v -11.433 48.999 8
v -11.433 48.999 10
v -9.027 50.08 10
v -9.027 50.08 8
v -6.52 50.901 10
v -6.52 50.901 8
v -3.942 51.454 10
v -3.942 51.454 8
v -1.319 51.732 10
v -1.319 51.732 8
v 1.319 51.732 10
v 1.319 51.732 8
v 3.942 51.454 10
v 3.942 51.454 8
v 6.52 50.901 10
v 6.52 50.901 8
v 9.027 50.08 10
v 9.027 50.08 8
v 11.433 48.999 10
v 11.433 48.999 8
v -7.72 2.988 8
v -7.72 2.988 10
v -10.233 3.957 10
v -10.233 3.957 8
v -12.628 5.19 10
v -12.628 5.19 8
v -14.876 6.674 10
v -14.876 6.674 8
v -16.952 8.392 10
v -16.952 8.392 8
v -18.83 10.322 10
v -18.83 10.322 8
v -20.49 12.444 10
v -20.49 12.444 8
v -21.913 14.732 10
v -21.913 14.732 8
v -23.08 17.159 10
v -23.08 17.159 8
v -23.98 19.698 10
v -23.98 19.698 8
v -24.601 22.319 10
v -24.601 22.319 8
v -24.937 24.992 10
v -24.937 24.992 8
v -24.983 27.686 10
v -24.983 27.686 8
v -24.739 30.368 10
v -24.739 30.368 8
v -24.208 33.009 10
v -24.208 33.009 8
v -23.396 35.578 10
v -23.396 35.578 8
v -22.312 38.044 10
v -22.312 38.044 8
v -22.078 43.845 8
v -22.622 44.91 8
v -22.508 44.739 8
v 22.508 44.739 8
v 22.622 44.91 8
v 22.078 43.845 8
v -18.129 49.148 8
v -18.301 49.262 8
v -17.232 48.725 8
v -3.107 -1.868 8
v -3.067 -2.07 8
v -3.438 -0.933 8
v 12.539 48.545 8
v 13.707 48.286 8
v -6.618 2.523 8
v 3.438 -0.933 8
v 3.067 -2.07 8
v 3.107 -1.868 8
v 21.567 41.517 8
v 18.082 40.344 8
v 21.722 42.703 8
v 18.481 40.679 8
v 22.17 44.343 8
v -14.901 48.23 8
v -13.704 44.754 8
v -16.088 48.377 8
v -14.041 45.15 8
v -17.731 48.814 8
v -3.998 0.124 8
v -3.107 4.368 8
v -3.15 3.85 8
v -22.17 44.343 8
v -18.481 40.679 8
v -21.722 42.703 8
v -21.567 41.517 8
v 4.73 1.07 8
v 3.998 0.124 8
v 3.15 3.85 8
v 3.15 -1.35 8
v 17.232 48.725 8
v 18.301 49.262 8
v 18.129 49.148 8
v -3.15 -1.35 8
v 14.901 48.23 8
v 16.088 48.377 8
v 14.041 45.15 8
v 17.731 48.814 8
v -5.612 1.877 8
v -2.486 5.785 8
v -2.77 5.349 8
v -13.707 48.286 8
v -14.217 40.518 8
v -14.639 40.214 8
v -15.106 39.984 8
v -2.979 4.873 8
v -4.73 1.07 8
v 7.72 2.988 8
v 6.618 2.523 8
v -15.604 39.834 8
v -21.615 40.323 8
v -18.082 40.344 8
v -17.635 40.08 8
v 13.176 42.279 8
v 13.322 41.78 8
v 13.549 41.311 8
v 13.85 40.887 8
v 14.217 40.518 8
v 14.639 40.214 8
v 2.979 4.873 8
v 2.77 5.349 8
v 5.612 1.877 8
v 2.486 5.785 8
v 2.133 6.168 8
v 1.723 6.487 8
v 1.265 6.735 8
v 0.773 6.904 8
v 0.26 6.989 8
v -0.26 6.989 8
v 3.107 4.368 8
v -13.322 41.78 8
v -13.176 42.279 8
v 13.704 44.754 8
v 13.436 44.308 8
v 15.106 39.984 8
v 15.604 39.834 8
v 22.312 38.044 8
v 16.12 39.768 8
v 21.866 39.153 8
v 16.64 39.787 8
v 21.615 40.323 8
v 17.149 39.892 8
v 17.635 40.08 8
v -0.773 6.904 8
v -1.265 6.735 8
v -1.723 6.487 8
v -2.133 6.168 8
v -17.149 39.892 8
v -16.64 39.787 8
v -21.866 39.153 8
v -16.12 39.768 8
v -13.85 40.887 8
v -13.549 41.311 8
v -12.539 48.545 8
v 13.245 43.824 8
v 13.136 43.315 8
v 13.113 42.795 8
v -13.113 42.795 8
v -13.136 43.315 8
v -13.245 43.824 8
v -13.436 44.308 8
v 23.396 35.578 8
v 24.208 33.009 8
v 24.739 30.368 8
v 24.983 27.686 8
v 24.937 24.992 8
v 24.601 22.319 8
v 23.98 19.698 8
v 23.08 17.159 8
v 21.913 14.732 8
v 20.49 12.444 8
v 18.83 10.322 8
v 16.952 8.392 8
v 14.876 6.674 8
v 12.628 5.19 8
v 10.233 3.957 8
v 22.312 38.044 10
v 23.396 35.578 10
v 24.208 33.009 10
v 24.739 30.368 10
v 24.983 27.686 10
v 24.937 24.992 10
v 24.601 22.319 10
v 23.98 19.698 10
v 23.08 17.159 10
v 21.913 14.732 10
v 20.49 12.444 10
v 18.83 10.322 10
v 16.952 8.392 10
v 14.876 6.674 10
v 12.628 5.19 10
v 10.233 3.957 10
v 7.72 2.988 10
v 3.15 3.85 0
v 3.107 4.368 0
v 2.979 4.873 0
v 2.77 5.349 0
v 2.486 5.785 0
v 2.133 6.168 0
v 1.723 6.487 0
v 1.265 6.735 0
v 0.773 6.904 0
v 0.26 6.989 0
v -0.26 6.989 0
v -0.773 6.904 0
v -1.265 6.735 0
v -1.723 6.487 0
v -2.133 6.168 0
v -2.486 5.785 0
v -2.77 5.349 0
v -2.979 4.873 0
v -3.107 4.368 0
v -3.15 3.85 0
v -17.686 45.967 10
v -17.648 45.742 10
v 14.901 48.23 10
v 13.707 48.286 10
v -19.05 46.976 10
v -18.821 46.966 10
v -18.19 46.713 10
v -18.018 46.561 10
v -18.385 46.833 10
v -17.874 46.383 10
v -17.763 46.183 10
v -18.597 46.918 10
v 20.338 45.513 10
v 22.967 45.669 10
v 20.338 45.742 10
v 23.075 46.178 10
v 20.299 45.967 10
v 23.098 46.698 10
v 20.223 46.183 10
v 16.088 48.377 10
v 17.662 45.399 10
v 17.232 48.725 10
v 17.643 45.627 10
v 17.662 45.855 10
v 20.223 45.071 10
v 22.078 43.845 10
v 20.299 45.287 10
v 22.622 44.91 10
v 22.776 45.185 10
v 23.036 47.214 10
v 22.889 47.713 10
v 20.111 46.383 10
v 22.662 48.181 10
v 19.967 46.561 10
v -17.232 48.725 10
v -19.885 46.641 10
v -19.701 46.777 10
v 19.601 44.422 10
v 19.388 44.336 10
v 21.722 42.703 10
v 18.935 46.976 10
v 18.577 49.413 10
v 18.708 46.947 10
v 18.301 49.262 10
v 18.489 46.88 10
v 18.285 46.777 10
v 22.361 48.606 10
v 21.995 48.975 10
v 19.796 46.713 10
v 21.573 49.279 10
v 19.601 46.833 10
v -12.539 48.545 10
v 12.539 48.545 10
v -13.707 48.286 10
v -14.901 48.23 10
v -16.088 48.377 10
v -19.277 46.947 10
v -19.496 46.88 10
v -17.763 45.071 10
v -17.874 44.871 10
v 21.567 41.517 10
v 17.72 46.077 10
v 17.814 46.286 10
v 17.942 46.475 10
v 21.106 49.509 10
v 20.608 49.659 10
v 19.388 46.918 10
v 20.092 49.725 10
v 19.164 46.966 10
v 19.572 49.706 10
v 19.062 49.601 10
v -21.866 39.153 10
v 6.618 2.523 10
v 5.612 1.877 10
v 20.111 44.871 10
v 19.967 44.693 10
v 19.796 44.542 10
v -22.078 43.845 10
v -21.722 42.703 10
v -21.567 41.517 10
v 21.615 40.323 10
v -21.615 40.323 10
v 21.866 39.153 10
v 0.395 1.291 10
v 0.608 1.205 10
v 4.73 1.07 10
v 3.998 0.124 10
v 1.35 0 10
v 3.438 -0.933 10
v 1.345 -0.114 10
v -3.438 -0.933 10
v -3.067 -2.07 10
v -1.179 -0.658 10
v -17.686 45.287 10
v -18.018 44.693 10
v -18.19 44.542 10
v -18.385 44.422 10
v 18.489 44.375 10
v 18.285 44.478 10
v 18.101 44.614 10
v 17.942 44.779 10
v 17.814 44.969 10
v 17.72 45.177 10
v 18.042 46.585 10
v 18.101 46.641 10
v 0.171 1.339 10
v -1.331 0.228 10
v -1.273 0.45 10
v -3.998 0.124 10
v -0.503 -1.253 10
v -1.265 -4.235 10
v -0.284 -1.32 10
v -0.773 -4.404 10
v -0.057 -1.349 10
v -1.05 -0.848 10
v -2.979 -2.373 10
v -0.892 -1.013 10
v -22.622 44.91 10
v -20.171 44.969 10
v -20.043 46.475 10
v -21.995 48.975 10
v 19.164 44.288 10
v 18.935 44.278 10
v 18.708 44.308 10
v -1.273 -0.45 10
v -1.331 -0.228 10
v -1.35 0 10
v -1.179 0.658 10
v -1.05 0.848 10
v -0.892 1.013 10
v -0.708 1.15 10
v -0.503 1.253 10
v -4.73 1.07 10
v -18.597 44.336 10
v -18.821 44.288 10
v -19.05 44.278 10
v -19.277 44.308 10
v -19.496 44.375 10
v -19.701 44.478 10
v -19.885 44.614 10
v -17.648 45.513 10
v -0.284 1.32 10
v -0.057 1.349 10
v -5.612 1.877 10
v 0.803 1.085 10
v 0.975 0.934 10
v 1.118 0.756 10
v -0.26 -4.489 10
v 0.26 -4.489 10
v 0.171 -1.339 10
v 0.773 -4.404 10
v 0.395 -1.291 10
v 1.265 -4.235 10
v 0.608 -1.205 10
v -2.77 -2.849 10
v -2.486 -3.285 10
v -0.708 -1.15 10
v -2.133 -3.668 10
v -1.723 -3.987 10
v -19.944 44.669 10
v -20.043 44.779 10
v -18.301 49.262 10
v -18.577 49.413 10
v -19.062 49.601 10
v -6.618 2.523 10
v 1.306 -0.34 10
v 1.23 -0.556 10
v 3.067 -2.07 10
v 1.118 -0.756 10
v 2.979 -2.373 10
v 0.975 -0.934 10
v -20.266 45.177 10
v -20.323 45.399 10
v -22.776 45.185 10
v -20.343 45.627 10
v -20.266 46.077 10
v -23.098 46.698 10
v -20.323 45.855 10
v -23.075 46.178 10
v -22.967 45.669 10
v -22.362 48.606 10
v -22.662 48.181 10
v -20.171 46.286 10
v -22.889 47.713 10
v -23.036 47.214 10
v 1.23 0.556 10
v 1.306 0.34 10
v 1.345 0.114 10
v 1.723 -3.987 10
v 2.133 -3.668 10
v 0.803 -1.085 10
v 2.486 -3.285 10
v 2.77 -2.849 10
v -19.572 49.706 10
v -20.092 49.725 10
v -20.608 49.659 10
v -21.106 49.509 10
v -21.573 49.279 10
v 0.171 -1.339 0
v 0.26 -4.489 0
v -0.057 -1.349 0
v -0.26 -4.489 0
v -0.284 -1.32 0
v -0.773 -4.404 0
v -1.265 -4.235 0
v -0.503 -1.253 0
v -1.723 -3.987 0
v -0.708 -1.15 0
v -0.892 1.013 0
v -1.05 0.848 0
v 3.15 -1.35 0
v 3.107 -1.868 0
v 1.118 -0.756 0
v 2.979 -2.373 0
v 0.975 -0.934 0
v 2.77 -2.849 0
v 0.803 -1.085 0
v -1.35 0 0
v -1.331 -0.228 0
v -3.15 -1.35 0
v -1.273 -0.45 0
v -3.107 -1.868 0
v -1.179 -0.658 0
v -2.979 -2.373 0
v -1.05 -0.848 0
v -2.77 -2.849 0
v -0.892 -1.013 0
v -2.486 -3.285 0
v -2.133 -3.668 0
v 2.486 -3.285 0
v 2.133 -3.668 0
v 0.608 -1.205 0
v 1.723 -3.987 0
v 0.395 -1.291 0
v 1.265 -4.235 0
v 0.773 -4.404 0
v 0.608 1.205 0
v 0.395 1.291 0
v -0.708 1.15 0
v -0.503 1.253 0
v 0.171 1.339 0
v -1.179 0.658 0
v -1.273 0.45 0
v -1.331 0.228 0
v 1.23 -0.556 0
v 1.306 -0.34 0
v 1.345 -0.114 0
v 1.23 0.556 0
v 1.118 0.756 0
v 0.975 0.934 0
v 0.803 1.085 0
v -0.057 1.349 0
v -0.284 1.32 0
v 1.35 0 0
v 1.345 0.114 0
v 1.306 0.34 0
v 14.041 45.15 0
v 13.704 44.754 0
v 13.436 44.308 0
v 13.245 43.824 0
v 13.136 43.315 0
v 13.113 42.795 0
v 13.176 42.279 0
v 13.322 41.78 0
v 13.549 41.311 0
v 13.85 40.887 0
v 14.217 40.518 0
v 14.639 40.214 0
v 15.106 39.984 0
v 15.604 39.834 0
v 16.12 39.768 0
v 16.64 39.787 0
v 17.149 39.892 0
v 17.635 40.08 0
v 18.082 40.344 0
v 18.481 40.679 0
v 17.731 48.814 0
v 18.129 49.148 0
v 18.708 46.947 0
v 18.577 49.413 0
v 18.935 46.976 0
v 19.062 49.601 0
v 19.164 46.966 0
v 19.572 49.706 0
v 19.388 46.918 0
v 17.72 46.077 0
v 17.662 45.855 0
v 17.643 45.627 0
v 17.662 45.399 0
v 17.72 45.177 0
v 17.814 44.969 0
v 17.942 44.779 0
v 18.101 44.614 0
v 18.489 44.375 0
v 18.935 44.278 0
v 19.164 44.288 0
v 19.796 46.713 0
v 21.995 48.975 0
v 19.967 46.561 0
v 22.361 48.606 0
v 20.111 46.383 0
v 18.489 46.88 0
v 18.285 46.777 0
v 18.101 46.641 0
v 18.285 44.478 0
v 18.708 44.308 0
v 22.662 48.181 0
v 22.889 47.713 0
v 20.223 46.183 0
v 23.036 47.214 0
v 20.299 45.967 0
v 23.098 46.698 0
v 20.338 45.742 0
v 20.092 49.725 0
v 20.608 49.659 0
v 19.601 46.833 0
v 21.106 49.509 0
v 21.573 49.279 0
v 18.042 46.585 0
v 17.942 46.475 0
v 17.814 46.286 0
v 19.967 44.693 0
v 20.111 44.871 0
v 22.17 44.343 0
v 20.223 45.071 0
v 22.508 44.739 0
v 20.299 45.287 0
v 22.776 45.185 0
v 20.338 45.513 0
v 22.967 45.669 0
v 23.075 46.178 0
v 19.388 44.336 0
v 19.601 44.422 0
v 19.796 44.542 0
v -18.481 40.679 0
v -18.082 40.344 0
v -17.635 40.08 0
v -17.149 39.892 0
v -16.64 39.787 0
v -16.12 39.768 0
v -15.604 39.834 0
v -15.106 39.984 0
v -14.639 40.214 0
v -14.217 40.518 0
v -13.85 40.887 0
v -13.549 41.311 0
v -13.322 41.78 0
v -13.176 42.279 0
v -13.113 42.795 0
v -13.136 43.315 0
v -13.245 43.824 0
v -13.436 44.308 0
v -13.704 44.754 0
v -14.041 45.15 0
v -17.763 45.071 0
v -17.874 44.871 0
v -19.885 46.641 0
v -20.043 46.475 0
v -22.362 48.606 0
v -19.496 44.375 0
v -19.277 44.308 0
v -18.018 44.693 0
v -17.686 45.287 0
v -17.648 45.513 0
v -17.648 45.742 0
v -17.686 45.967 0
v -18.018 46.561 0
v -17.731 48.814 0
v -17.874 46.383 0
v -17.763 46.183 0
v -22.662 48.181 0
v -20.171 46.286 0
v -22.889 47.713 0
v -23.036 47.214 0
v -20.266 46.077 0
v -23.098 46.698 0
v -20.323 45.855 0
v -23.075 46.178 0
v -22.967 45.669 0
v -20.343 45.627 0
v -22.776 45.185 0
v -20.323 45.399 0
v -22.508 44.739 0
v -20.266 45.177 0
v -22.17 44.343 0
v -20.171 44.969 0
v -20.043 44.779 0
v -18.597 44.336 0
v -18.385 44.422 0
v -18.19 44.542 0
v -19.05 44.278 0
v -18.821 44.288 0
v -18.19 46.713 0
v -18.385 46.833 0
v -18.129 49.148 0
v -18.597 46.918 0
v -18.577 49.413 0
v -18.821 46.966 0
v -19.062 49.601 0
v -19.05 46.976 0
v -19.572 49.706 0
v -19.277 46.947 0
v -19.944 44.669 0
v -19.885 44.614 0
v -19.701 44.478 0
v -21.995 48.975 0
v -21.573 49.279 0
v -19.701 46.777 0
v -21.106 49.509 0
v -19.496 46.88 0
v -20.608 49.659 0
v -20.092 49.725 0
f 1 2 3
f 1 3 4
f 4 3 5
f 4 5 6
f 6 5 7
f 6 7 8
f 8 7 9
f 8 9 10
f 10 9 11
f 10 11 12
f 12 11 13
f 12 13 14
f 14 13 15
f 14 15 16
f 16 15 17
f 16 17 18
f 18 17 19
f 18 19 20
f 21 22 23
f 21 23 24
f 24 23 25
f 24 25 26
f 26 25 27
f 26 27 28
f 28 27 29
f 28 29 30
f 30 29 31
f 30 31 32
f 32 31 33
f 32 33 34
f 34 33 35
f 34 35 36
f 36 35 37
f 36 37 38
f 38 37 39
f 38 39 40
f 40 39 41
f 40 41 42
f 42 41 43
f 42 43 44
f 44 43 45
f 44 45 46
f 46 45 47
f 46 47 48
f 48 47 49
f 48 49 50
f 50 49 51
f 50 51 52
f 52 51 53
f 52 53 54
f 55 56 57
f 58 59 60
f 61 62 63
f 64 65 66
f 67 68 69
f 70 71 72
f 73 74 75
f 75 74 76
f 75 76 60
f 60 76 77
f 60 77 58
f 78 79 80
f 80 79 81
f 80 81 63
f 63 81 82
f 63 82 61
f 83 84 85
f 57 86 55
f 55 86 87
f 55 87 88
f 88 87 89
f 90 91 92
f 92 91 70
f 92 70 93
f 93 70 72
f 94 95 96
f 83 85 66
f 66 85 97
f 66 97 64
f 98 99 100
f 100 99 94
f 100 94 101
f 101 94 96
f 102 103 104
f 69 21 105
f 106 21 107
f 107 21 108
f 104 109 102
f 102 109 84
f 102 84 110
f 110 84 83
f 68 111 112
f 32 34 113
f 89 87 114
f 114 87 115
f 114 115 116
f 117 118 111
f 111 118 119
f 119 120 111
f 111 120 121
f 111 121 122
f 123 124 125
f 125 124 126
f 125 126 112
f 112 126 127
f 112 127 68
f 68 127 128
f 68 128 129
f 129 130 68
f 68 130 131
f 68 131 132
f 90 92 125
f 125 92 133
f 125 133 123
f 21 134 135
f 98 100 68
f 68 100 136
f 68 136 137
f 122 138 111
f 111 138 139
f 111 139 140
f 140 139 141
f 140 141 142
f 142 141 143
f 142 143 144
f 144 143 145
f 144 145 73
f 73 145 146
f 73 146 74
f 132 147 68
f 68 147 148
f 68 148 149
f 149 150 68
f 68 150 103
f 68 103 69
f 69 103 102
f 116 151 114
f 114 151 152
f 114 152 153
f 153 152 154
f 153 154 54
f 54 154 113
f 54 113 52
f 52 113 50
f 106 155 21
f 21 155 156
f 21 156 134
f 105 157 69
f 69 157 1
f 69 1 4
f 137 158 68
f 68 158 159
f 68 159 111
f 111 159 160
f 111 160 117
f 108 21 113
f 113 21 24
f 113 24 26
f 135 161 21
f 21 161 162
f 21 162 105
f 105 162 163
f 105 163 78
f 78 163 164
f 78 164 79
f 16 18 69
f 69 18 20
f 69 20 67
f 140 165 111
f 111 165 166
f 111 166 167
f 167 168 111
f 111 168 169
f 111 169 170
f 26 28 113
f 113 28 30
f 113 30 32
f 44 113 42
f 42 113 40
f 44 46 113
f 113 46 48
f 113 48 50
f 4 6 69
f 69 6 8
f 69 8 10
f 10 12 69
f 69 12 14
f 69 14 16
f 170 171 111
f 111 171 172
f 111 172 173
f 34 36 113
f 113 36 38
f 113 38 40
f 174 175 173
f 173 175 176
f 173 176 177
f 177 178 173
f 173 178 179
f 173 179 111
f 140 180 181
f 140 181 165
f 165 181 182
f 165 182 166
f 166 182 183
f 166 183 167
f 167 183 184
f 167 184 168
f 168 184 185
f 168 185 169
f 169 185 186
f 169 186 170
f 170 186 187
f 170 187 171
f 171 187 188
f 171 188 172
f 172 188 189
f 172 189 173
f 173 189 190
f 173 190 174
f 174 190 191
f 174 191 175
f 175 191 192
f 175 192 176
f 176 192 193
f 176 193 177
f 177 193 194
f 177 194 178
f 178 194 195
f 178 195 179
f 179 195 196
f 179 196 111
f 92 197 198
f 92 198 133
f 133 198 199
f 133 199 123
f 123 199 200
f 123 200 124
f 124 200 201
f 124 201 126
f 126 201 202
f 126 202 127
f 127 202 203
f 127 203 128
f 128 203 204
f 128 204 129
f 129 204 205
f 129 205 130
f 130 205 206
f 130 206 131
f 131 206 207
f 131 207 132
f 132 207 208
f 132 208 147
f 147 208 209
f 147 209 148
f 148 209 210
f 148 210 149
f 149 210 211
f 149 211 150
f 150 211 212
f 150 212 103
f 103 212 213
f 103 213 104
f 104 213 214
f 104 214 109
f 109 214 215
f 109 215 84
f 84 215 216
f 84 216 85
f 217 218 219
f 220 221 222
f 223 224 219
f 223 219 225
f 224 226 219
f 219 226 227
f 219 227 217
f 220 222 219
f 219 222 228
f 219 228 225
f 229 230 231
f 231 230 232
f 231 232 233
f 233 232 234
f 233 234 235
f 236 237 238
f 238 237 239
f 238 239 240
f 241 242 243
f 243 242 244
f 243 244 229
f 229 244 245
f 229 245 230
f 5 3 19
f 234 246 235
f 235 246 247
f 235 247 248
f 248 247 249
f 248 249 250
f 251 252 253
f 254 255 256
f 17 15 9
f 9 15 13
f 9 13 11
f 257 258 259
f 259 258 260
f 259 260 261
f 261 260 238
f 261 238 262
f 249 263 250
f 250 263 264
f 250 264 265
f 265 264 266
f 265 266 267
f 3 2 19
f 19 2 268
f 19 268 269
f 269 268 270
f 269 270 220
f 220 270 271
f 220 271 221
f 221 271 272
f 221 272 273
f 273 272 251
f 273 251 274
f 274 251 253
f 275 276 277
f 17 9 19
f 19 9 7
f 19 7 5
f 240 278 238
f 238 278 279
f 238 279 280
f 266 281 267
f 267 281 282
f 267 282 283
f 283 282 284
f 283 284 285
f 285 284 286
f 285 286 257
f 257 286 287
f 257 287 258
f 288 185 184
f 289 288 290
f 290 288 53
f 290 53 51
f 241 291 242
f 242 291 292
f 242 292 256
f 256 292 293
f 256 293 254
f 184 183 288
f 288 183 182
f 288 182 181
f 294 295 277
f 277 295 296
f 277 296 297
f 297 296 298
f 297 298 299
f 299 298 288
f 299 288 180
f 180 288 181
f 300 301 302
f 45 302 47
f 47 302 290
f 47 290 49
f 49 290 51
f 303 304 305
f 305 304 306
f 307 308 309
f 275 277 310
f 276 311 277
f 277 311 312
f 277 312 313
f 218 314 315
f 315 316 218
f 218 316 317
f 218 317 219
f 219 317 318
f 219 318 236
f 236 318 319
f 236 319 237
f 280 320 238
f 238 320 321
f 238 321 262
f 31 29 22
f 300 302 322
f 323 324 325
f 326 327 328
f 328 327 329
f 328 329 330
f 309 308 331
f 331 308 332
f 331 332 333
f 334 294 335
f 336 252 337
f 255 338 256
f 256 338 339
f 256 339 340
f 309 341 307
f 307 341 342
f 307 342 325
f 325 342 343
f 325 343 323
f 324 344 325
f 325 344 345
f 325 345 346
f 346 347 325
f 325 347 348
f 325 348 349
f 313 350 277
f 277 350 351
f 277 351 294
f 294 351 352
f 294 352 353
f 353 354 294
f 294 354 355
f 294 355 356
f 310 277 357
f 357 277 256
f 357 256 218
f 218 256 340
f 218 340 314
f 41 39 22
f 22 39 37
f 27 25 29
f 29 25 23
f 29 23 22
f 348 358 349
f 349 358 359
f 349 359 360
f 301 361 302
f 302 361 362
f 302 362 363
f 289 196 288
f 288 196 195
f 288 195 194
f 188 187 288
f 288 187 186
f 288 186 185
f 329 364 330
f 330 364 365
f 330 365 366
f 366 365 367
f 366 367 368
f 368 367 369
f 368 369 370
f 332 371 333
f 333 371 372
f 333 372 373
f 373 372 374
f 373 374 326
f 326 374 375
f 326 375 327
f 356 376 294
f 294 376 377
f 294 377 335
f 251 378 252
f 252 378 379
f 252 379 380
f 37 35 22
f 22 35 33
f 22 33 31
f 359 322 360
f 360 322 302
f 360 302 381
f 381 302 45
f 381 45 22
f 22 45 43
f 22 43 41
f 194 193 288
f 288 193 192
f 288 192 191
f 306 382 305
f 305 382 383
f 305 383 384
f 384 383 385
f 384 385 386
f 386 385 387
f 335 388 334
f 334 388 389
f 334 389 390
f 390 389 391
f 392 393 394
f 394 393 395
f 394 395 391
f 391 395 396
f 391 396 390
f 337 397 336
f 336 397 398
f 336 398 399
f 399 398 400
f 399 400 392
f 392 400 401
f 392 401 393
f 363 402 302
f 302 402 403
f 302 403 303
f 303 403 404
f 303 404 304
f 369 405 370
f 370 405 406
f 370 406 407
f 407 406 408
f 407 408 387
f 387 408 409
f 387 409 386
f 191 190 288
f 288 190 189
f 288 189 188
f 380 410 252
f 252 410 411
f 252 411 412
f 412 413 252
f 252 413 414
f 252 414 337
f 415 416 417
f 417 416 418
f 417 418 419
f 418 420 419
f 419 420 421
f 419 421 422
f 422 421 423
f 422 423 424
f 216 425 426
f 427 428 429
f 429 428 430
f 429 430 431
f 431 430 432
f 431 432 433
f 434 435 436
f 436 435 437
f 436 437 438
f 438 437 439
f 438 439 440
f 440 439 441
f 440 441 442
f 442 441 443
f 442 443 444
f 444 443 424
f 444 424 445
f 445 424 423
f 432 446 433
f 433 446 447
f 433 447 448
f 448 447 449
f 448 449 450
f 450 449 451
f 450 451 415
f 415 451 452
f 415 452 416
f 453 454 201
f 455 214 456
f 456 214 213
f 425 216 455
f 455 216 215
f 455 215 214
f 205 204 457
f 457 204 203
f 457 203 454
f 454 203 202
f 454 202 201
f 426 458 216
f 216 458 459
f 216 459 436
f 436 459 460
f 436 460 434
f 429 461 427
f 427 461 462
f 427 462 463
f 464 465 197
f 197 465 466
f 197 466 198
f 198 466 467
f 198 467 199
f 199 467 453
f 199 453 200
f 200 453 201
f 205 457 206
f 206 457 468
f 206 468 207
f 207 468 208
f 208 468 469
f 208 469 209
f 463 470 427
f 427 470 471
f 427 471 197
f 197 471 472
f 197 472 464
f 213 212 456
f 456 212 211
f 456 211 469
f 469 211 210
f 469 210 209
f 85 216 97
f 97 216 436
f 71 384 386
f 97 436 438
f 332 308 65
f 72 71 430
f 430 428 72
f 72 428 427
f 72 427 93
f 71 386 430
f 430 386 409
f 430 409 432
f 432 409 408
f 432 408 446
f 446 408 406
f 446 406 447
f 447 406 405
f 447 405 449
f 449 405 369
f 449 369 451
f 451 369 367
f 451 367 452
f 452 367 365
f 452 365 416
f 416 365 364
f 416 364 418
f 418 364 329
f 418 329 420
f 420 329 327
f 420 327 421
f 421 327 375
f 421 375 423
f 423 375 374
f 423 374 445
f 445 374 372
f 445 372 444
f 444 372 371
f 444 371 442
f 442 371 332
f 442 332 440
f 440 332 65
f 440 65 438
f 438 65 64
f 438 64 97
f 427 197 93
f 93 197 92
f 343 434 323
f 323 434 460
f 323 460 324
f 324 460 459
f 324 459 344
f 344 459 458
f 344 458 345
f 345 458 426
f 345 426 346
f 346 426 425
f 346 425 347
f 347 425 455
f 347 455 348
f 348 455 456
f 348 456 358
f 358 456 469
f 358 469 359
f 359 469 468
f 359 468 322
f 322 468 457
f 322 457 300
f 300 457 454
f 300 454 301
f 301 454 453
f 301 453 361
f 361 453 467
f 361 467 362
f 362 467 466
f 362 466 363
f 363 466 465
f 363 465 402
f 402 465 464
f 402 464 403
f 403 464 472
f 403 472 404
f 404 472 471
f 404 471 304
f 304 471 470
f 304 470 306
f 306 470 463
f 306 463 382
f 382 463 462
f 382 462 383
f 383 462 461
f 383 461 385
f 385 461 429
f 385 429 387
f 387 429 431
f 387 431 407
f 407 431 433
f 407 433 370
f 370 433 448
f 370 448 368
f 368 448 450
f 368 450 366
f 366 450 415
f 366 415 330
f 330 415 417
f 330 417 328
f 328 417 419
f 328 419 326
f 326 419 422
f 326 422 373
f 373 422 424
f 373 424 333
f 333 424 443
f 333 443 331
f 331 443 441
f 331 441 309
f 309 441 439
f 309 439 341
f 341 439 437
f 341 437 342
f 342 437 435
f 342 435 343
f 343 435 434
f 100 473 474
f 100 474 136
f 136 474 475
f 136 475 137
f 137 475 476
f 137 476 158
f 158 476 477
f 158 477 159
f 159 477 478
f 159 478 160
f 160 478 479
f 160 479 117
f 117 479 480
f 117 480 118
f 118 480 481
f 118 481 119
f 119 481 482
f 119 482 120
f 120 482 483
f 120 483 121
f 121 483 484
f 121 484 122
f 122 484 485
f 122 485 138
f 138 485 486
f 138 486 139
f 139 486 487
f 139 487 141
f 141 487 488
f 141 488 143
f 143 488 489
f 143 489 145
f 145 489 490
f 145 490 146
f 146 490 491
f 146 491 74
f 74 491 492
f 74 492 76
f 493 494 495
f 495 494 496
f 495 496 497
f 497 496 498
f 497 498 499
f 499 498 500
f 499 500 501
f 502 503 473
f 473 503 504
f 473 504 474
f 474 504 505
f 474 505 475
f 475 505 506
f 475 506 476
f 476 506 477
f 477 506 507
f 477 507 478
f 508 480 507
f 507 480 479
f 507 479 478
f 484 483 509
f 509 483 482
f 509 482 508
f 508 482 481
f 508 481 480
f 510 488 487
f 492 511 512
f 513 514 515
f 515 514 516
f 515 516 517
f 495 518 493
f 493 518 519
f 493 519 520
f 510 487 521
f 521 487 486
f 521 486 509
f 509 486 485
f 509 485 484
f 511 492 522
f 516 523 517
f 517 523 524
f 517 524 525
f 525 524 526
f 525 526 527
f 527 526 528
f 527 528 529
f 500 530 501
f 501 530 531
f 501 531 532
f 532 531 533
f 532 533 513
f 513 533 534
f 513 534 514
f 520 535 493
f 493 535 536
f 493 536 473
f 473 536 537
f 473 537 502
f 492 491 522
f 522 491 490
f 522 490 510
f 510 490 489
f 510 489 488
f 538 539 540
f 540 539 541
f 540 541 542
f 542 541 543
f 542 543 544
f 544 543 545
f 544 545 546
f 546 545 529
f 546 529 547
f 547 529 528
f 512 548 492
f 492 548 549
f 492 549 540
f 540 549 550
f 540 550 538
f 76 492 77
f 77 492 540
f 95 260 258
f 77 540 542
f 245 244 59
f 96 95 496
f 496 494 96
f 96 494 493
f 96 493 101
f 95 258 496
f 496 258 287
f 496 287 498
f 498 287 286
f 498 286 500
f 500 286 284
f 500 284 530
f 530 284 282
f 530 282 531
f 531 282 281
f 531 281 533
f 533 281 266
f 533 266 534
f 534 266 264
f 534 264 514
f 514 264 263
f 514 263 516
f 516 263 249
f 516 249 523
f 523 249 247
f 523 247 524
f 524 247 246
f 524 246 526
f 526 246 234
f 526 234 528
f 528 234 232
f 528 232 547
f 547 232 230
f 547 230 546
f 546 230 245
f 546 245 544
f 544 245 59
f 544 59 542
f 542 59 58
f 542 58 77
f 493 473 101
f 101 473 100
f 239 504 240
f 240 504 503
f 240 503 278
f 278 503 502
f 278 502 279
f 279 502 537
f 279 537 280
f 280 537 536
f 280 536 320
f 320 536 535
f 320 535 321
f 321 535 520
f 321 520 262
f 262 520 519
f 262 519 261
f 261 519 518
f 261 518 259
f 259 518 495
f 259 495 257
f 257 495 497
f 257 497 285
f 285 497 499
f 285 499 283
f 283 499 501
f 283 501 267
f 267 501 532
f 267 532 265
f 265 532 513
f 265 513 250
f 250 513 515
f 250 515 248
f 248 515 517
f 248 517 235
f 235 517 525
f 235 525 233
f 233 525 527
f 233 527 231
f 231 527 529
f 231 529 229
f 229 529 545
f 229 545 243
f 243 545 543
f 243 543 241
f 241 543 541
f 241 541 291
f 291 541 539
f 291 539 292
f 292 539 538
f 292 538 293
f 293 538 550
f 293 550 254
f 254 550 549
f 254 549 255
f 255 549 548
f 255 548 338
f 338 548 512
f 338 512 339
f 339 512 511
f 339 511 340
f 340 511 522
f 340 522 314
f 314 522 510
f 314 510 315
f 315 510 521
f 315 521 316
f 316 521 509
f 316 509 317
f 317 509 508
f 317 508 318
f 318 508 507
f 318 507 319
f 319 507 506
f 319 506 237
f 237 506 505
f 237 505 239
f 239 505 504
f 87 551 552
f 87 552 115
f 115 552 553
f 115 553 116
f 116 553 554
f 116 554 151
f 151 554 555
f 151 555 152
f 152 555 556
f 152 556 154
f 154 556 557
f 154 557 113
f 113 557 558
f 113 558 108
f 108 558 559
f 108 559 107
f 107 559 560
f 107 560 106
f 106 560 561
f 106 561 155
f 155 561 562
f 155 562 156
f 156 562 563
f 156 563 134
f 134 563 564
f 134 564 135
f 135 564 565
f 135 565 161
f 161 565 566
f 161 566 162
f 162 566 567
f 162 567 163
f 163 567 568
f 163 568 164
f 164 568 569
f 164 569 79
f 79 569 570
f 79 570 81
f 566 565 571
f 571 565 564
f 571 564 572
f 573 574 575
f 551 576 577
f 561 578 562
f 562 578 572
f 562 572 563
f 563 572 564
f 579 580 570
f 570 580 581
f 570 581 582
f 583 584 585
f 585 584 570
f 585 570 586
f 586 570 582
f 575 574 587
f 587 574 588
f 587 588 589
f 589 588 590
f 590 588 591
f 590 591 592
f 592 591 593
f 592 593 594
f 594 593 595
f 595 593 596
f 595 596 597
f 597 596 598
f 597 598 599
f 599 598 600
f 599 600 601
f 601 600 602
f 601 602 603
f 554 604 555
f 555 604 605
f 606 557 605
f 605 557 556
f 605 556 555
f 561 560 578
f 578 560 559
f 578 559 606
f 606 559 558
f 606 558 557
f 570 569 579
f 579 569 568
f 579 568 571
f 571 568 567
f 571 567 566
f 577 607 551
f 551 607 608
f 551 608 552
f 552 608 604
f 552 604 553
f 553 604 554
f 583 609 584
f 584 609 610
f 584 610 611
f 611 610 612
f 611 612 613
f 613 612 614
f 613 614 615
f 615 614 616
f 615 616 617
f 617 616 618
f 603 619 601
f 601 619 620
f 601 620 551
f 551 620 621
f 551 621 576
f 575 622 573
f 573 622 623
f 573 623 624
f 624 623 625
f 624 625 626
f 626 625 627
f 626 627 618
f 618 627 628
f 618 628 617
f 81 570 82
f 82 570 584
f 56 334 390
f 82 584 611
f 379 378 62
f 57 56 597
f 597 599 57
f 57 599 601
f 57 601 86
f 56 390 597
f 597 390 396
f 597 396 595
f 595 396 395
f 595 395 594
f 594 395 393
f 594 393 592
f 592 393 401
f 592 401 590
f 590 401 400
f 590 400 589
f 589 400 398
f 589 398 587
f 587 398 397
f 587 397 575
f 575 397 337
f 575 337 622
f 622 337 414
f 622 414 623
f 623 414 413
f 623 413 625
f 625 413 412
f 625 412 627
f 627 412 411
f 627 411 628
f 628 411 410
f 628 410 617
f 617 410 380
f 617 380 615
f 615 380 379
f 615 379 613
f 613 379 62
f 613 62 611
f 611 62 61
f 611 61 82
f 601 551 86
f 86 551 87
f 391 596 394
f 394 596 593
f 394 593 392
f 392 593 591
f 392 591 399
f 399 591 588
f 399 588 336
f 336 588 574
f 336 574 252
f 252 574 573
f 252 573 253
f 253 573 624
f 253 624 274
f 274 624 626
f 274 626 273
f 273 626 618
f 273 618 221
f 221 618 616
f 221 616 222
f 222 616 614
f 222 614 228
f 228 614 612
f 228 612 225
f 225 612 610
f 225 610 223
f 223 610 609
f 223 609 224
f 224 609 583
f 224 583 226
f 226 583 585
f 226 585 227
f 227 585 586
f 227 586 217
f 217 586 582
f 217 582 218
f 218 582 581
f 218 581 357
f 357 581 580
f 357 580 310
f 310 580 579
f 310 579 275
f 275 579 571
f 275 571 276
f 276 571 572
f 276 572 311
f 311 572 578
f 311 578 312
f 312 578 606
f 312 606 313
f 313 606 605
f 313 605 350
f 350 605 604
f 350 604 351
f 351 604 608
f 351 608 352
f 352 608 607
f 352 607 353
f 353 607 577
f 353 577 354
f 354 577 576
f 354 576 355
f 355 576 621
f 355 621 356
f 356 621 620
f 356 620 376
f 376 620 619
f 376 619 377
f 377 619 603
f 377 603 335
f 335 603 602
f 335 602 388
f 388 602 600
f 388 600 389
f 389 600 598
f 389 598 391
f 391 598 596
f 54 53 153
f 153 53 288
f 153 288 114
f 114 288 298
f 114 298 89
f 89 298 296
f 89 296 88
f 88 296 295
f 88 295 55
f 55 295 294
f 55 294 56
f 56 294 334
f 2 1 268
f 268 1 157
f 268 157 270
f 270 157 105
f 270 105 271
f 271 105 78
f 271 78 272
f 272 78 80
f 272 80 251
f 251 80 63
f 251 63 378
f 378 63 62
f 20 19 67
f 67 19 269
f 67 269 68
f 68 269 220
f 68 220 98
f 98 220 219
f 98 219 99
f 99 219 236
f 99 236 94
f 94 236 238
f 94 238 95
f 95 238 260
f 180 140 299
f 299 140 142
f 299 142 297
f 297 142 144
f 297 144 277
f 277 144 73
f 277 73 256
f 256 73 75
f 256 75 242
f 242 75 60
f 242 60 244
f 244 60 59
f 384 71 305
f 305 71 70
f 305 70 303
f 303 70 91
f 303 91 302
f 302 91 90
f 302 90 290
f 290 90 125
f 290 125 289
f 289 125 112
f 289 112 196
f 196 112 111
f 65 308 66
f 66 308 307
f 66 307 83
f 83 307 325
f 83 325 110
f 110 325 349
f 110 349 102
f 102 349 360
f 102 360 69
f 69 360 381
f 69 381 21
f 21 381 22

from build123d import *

# Parameters (mm, degrees)
SKETCH1_R           = 1.35
BOSS_EXTRUDE1_DEPTH = 10
SKETCH2_R           = 25
BOSS_EXTRUDE2_DEPTH = 2
CIRPATTERN1_COUNT   = 2
CIRPATTERN1_ANGLE   = 134.8
CIRPATTERN2_COUNT   = 2
CIRPATTERN2_ANGLE   = 225.2
FILLET1_R           = 7


with BuildPart() as part:
    # Sketch1 → Boss-Extrude1 (new body)
    with BuildSketch(Plane.XY):
        with BuildLine():
            Line((3.15, 3.85), (3.15, -1.35))
            ThreePointArc((3.15, -1.35), (0, -4.5), (-3.15, -1.35))
            Line((-3.15, -1.35), (-3.15, 3.85))
            ThreePointArc((-3.15, 3.85), (0, 7), (3.15, 3.85))
        make_face()
        Circle(SKETCH1_R, mode=Mode.SUBTRACT)
    boss_extrude1 = extrude(amount=BOSS_EXTRUDE1_DEPTH)

    # Sketch2 → Boss-Extrude2 (add)
    with BuildSketch(Plane.XY.offset(10)):
        with Locations((0, 26.766568047)):
            Circle(SKETCH2_R)
    extrude(amount=-BOSS_EXTRUDE2_DEPTH)

    # CirPattern1: Boss-Extrude1 ×2 about axis
    cirpattern1_axis = Axis((0, 26.766568047, 0), (0, 0, 1))
    for i in range(1, CIRPATTERN1_COUNT):
        add(boss_extrude1.rotate(cirpattern1_axis, i * CIRPATTERN1_ANGLE / (CIRPATTERN1_COUNT - 1)))

    # CirPattern2: Boss-Extrude1 ×2 about axis
    cirpattern2_axis = Axis((0, 26.766568047, 0), (0, 0, 1))
    for i in range(1, CIRPATTERN2_COUNT):
        add(boss_extrude1.rotate(cirpattern2_axis, i * CIRPATTERN2_ANGLE / (CIRPATTERN2_COUNT - 1)))

    # Fillet1
    # the kernel refuses this fillet: 7 mm, written as the material it adds along each edge
    with BuildSketch(Plane(origin=(-19.817488489, 42.006881364, 8), x_dir=(-0.53269115848809, -0.8463097126162599, 0), z_dir=(0, 0, 1))) as fillet1_piece_1:
        with BuildLine():
            CenterArc((5.338447362, -6.96923168), FILLET1_R, 95.374025281, 58.803015478)
            Line((-0.962562709, -3.920088835), (-1.592663716, -3.61517455))
            ThreePointArc((-1.592663716, -3.61517455), (-1.407138142, -3.082948514), (-0.683108314, 0.152849703))
            Line((-0.683108314, 0.152849703), (0.06555988, 0.696923168))
            ThreePointArc((0.06555988, 0.696923168), (2.341424281, 0.590113144), (4.617288683, 0.696923168))
            Line((4.617288683, 0.696923168), (4.682848563, 0))
        make_face()
    extrude(amount=2)
    with BuildSketch(Plane(origin=(-15.378292966, 46.477177004, 8), x_dir=(0.8425702330097088, 0.5385864855767968, 0), z_dir=(0, 0, 1)), Plane(origin=(19.817488489, 42.006881364, 8), x_dir=(0.532691158488102, -0.8463097126162524, 0), z_dir=(0, 0, 1))) as fillet1_piece_2:
        with BuildLine():
            CenterArc((5.338447362, 6.96923168), FILLET1_R, 205.822959241, 58.803015478)
            Line((-0.962562709, 3.920088835), (-1.592663716, 3.61517455))
            ThreePointArc((-1.592663716, 3.61517455), (-1.407138142, 3.082948514), (-0.683108314, -0.152849703))
            Line((-0.683108314, -0.152849703), (0.06555988, -0.696923168))
            ThreePointArc((0.06555988, -0.696923168), (2.341424281, -0.590113144), (4.617288683, -0.696923168))
            Line((4.617288683, -0.696923168), (4.682848563, 0))
        make_face()
    extrude(amount=2)
    with BuildSketch(Plane(origin=(15.378292966, 46.477177004, 8), x_dir=(0.7239706283099918, 0.6898307976195582, 0), z_dir=(0, 0, 1)), Plane(origin=(3.15, 1.96581201, 8), x_dir=(-0.020650724563576823, -0.9997867510499423, 0), z_dir=(0, 0, 1))) as fillet1_piece_3:
        with BuildLine():
            CenterArc((5.495161337, 6.846342989), FILLET1_R, 199.169842212, 58.803015478)
            Line((-1.116684038, 4.547756306), (-1.777868575, 4.317897638))
            ThreePointArc((-1.777868575, 4.317897638), (-1.131431398, 2.133158264), (-0.692451691, -0.102521492))
            Line((-0.692451691, -0.102521492), (0.014455507, -0.699850726))
            ThreePointArc((0.014455507, -0.699850726), (3.329560424, -0.631376805), (3.890673543, -0.684634299))
            Line((3.890673543, -0.684634299), (4.03653607, 0))
        make_face()
    extrude(amount=2)
    with BuildSketch(Plane(origin=(-3.15, 1.96581201, 8), x_dir=(0.020650724563576386, -0.9997867510499423, 0), z_dir=(0, 0, 1))) as fillet1_piece_4:
        with BuildLine():
            CenterArc((5.495161337, -6.846342989), FILLET1_R, 102.02714231, 58.803015478)
            Line((-1.116684038, -4.547756306), (-1.777868575, -4.317897638))
            ThreePointArc((-1.777868575, -4.317897638), (-1.131431398, -2.133158264), (-0.692451691, 0.102521492))
            Line((-0.692451691, 0.102521492), (0.014455507, 0.699850726))
            ThreePointArc((0.014455507, 0.699850726), (3.329560424, 0.631376805), (3.890673543, 0.684634299))
            Line((3.890673543, 0.684634299), (4.03653607, 0))
        make_face()
    extrude(amount=2)


solid = part.part
